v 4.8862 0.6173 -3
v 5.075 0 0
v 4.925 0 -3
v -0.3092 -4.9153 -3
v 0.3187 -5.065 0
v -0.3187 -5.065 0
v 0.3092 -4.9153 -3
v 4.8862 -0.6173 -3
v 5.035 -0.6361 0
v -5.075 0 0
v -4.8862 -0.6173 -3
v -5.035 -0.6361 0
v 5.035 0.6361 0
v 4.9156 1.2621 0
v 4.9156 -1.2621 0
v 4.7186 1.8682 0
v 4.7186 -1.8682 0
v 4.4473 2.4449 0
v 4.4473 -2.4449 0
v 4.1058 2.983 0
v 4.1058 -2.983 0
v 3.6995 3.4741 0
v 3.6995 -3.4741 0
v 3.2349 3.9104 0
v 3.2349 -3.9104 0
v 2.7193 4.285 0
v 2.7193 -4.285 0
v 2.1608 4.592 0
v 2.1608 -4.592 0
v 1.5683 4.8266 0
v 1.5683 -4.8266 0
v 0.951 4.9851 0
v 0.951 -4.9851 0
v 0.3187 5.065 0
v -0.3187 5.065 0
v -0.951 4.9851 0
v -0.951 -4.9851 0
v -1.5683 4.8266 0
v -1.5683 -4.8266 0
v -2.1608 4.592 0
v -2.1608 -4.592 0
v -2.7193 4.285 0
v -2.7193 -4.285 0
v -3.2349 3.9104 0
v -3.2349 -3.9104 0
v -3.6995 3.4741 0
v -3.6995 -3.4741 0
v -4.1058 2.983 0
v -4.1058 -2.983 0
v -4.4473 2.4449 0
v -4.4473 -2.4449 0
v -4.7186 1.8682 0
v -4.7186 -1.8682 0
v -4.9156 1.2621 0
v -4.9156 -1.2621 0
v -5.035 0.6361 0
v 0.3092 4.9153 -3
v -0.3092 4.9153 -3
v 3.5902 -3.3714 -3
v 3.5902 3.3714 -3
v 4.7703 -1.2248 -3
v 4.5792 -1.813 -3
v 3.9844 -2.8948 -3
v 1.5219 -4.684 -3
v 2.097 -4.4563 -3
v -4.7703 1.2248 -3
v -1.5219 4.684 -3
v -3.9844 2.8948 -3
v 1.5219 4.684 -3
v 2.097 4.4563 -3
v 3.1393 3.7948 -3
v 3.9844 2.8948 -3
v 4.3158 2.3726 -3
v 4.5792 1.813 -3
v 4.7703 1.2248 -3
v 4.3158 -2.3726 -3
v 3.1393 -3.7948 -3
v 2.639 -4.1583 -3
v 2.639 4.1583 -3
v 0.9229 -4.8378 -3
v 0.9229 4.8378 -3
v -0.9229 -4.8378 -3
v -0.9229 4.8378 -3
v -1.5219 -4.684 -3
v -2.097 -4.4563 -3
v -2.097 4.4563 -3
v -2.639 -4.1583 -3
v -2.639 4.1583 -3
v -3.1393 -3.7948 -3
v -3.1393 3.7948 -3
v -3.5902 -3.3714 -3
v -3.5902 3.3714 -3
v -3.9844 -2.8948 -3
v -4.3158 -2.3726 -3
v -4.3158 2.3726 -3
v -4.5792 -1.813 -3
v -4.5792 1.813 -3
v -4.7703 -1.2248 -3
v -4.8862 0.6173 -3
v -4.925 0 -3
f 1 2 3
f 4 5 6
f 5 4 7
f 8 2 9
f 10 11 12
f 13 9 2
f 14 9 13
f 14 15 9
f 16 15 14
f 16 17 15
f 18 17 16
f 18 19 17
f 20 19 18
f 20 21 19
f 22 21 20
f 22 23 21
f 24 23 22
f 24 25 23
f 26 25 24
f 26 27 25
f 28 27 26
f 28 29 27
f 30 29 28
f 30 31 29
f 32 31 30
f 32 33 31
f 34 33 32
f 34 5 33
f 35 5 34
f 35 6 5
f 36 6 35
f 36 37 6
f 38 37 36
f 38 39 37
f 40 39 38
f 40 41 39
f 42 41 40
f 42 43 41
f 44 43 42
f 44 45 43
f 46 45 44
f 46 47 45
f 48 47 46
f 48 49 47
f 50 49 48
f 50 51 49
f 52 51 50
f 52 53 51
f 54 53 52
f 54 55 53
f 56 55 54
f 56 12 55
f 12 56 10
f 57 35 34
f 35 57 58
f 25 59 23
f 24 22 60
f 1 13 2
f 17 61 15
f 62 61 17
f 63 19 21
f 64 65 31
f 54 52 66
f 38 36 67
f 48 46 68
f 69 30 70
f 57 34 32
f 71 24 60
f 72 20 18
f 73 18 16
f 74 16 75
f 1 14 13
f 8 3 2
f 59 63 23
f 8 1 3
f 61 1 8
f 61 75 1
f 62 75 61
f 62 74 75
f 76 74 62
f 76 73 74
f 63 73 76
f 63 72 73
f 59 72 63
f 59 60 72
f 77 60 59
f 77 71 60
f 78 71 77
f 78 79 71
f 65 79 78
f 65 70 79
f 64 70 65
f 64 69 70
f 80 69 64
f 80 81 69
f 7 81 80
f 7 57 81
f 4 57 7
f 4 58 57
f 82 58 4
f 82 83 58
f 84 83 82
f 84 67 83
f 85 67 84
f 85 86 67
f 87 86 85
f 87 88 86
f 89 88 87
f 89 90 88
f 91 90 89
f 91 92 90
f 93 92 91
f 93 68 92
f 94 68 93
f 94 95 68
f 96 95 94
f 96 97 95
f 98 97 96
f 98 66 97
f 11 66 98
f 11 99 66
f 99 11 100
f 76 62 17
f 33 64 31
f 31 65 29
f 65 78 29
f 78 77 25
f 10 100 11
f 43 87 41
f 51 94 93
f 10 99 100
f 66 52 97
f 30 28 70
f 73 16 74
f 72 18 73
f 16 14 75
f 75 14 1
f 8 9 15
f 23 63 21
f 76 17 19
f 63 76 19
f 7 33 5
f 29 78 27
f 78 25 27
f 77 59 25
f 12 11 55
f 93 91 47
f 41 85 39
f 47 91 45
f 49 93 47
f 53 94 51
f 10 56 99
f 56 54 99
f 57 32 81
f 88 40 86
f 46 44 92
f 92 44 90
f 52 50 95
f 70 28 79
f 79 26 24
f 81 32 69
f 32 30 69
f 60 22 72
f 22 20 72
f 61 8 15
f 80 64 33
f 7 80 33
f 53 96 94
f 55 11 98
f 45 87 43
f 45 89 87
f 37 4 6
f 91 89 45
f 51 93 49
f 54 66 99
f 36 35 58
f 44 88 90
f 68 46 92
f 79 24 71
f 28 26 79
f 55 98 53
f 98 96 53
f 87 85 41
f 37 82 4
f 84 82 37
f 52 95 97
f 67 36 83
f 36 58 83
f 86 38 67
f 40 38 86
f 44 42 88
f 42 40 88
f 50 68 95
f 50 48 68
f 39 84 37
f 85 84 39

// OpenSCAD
$fn = 50;

difference() {
	union() {
		translate(v = [0, 0, -3.0]) {
			cylinder(h = 3, r1 = 4.925, r2 = 5.075);
		}
	}
	union();
}
